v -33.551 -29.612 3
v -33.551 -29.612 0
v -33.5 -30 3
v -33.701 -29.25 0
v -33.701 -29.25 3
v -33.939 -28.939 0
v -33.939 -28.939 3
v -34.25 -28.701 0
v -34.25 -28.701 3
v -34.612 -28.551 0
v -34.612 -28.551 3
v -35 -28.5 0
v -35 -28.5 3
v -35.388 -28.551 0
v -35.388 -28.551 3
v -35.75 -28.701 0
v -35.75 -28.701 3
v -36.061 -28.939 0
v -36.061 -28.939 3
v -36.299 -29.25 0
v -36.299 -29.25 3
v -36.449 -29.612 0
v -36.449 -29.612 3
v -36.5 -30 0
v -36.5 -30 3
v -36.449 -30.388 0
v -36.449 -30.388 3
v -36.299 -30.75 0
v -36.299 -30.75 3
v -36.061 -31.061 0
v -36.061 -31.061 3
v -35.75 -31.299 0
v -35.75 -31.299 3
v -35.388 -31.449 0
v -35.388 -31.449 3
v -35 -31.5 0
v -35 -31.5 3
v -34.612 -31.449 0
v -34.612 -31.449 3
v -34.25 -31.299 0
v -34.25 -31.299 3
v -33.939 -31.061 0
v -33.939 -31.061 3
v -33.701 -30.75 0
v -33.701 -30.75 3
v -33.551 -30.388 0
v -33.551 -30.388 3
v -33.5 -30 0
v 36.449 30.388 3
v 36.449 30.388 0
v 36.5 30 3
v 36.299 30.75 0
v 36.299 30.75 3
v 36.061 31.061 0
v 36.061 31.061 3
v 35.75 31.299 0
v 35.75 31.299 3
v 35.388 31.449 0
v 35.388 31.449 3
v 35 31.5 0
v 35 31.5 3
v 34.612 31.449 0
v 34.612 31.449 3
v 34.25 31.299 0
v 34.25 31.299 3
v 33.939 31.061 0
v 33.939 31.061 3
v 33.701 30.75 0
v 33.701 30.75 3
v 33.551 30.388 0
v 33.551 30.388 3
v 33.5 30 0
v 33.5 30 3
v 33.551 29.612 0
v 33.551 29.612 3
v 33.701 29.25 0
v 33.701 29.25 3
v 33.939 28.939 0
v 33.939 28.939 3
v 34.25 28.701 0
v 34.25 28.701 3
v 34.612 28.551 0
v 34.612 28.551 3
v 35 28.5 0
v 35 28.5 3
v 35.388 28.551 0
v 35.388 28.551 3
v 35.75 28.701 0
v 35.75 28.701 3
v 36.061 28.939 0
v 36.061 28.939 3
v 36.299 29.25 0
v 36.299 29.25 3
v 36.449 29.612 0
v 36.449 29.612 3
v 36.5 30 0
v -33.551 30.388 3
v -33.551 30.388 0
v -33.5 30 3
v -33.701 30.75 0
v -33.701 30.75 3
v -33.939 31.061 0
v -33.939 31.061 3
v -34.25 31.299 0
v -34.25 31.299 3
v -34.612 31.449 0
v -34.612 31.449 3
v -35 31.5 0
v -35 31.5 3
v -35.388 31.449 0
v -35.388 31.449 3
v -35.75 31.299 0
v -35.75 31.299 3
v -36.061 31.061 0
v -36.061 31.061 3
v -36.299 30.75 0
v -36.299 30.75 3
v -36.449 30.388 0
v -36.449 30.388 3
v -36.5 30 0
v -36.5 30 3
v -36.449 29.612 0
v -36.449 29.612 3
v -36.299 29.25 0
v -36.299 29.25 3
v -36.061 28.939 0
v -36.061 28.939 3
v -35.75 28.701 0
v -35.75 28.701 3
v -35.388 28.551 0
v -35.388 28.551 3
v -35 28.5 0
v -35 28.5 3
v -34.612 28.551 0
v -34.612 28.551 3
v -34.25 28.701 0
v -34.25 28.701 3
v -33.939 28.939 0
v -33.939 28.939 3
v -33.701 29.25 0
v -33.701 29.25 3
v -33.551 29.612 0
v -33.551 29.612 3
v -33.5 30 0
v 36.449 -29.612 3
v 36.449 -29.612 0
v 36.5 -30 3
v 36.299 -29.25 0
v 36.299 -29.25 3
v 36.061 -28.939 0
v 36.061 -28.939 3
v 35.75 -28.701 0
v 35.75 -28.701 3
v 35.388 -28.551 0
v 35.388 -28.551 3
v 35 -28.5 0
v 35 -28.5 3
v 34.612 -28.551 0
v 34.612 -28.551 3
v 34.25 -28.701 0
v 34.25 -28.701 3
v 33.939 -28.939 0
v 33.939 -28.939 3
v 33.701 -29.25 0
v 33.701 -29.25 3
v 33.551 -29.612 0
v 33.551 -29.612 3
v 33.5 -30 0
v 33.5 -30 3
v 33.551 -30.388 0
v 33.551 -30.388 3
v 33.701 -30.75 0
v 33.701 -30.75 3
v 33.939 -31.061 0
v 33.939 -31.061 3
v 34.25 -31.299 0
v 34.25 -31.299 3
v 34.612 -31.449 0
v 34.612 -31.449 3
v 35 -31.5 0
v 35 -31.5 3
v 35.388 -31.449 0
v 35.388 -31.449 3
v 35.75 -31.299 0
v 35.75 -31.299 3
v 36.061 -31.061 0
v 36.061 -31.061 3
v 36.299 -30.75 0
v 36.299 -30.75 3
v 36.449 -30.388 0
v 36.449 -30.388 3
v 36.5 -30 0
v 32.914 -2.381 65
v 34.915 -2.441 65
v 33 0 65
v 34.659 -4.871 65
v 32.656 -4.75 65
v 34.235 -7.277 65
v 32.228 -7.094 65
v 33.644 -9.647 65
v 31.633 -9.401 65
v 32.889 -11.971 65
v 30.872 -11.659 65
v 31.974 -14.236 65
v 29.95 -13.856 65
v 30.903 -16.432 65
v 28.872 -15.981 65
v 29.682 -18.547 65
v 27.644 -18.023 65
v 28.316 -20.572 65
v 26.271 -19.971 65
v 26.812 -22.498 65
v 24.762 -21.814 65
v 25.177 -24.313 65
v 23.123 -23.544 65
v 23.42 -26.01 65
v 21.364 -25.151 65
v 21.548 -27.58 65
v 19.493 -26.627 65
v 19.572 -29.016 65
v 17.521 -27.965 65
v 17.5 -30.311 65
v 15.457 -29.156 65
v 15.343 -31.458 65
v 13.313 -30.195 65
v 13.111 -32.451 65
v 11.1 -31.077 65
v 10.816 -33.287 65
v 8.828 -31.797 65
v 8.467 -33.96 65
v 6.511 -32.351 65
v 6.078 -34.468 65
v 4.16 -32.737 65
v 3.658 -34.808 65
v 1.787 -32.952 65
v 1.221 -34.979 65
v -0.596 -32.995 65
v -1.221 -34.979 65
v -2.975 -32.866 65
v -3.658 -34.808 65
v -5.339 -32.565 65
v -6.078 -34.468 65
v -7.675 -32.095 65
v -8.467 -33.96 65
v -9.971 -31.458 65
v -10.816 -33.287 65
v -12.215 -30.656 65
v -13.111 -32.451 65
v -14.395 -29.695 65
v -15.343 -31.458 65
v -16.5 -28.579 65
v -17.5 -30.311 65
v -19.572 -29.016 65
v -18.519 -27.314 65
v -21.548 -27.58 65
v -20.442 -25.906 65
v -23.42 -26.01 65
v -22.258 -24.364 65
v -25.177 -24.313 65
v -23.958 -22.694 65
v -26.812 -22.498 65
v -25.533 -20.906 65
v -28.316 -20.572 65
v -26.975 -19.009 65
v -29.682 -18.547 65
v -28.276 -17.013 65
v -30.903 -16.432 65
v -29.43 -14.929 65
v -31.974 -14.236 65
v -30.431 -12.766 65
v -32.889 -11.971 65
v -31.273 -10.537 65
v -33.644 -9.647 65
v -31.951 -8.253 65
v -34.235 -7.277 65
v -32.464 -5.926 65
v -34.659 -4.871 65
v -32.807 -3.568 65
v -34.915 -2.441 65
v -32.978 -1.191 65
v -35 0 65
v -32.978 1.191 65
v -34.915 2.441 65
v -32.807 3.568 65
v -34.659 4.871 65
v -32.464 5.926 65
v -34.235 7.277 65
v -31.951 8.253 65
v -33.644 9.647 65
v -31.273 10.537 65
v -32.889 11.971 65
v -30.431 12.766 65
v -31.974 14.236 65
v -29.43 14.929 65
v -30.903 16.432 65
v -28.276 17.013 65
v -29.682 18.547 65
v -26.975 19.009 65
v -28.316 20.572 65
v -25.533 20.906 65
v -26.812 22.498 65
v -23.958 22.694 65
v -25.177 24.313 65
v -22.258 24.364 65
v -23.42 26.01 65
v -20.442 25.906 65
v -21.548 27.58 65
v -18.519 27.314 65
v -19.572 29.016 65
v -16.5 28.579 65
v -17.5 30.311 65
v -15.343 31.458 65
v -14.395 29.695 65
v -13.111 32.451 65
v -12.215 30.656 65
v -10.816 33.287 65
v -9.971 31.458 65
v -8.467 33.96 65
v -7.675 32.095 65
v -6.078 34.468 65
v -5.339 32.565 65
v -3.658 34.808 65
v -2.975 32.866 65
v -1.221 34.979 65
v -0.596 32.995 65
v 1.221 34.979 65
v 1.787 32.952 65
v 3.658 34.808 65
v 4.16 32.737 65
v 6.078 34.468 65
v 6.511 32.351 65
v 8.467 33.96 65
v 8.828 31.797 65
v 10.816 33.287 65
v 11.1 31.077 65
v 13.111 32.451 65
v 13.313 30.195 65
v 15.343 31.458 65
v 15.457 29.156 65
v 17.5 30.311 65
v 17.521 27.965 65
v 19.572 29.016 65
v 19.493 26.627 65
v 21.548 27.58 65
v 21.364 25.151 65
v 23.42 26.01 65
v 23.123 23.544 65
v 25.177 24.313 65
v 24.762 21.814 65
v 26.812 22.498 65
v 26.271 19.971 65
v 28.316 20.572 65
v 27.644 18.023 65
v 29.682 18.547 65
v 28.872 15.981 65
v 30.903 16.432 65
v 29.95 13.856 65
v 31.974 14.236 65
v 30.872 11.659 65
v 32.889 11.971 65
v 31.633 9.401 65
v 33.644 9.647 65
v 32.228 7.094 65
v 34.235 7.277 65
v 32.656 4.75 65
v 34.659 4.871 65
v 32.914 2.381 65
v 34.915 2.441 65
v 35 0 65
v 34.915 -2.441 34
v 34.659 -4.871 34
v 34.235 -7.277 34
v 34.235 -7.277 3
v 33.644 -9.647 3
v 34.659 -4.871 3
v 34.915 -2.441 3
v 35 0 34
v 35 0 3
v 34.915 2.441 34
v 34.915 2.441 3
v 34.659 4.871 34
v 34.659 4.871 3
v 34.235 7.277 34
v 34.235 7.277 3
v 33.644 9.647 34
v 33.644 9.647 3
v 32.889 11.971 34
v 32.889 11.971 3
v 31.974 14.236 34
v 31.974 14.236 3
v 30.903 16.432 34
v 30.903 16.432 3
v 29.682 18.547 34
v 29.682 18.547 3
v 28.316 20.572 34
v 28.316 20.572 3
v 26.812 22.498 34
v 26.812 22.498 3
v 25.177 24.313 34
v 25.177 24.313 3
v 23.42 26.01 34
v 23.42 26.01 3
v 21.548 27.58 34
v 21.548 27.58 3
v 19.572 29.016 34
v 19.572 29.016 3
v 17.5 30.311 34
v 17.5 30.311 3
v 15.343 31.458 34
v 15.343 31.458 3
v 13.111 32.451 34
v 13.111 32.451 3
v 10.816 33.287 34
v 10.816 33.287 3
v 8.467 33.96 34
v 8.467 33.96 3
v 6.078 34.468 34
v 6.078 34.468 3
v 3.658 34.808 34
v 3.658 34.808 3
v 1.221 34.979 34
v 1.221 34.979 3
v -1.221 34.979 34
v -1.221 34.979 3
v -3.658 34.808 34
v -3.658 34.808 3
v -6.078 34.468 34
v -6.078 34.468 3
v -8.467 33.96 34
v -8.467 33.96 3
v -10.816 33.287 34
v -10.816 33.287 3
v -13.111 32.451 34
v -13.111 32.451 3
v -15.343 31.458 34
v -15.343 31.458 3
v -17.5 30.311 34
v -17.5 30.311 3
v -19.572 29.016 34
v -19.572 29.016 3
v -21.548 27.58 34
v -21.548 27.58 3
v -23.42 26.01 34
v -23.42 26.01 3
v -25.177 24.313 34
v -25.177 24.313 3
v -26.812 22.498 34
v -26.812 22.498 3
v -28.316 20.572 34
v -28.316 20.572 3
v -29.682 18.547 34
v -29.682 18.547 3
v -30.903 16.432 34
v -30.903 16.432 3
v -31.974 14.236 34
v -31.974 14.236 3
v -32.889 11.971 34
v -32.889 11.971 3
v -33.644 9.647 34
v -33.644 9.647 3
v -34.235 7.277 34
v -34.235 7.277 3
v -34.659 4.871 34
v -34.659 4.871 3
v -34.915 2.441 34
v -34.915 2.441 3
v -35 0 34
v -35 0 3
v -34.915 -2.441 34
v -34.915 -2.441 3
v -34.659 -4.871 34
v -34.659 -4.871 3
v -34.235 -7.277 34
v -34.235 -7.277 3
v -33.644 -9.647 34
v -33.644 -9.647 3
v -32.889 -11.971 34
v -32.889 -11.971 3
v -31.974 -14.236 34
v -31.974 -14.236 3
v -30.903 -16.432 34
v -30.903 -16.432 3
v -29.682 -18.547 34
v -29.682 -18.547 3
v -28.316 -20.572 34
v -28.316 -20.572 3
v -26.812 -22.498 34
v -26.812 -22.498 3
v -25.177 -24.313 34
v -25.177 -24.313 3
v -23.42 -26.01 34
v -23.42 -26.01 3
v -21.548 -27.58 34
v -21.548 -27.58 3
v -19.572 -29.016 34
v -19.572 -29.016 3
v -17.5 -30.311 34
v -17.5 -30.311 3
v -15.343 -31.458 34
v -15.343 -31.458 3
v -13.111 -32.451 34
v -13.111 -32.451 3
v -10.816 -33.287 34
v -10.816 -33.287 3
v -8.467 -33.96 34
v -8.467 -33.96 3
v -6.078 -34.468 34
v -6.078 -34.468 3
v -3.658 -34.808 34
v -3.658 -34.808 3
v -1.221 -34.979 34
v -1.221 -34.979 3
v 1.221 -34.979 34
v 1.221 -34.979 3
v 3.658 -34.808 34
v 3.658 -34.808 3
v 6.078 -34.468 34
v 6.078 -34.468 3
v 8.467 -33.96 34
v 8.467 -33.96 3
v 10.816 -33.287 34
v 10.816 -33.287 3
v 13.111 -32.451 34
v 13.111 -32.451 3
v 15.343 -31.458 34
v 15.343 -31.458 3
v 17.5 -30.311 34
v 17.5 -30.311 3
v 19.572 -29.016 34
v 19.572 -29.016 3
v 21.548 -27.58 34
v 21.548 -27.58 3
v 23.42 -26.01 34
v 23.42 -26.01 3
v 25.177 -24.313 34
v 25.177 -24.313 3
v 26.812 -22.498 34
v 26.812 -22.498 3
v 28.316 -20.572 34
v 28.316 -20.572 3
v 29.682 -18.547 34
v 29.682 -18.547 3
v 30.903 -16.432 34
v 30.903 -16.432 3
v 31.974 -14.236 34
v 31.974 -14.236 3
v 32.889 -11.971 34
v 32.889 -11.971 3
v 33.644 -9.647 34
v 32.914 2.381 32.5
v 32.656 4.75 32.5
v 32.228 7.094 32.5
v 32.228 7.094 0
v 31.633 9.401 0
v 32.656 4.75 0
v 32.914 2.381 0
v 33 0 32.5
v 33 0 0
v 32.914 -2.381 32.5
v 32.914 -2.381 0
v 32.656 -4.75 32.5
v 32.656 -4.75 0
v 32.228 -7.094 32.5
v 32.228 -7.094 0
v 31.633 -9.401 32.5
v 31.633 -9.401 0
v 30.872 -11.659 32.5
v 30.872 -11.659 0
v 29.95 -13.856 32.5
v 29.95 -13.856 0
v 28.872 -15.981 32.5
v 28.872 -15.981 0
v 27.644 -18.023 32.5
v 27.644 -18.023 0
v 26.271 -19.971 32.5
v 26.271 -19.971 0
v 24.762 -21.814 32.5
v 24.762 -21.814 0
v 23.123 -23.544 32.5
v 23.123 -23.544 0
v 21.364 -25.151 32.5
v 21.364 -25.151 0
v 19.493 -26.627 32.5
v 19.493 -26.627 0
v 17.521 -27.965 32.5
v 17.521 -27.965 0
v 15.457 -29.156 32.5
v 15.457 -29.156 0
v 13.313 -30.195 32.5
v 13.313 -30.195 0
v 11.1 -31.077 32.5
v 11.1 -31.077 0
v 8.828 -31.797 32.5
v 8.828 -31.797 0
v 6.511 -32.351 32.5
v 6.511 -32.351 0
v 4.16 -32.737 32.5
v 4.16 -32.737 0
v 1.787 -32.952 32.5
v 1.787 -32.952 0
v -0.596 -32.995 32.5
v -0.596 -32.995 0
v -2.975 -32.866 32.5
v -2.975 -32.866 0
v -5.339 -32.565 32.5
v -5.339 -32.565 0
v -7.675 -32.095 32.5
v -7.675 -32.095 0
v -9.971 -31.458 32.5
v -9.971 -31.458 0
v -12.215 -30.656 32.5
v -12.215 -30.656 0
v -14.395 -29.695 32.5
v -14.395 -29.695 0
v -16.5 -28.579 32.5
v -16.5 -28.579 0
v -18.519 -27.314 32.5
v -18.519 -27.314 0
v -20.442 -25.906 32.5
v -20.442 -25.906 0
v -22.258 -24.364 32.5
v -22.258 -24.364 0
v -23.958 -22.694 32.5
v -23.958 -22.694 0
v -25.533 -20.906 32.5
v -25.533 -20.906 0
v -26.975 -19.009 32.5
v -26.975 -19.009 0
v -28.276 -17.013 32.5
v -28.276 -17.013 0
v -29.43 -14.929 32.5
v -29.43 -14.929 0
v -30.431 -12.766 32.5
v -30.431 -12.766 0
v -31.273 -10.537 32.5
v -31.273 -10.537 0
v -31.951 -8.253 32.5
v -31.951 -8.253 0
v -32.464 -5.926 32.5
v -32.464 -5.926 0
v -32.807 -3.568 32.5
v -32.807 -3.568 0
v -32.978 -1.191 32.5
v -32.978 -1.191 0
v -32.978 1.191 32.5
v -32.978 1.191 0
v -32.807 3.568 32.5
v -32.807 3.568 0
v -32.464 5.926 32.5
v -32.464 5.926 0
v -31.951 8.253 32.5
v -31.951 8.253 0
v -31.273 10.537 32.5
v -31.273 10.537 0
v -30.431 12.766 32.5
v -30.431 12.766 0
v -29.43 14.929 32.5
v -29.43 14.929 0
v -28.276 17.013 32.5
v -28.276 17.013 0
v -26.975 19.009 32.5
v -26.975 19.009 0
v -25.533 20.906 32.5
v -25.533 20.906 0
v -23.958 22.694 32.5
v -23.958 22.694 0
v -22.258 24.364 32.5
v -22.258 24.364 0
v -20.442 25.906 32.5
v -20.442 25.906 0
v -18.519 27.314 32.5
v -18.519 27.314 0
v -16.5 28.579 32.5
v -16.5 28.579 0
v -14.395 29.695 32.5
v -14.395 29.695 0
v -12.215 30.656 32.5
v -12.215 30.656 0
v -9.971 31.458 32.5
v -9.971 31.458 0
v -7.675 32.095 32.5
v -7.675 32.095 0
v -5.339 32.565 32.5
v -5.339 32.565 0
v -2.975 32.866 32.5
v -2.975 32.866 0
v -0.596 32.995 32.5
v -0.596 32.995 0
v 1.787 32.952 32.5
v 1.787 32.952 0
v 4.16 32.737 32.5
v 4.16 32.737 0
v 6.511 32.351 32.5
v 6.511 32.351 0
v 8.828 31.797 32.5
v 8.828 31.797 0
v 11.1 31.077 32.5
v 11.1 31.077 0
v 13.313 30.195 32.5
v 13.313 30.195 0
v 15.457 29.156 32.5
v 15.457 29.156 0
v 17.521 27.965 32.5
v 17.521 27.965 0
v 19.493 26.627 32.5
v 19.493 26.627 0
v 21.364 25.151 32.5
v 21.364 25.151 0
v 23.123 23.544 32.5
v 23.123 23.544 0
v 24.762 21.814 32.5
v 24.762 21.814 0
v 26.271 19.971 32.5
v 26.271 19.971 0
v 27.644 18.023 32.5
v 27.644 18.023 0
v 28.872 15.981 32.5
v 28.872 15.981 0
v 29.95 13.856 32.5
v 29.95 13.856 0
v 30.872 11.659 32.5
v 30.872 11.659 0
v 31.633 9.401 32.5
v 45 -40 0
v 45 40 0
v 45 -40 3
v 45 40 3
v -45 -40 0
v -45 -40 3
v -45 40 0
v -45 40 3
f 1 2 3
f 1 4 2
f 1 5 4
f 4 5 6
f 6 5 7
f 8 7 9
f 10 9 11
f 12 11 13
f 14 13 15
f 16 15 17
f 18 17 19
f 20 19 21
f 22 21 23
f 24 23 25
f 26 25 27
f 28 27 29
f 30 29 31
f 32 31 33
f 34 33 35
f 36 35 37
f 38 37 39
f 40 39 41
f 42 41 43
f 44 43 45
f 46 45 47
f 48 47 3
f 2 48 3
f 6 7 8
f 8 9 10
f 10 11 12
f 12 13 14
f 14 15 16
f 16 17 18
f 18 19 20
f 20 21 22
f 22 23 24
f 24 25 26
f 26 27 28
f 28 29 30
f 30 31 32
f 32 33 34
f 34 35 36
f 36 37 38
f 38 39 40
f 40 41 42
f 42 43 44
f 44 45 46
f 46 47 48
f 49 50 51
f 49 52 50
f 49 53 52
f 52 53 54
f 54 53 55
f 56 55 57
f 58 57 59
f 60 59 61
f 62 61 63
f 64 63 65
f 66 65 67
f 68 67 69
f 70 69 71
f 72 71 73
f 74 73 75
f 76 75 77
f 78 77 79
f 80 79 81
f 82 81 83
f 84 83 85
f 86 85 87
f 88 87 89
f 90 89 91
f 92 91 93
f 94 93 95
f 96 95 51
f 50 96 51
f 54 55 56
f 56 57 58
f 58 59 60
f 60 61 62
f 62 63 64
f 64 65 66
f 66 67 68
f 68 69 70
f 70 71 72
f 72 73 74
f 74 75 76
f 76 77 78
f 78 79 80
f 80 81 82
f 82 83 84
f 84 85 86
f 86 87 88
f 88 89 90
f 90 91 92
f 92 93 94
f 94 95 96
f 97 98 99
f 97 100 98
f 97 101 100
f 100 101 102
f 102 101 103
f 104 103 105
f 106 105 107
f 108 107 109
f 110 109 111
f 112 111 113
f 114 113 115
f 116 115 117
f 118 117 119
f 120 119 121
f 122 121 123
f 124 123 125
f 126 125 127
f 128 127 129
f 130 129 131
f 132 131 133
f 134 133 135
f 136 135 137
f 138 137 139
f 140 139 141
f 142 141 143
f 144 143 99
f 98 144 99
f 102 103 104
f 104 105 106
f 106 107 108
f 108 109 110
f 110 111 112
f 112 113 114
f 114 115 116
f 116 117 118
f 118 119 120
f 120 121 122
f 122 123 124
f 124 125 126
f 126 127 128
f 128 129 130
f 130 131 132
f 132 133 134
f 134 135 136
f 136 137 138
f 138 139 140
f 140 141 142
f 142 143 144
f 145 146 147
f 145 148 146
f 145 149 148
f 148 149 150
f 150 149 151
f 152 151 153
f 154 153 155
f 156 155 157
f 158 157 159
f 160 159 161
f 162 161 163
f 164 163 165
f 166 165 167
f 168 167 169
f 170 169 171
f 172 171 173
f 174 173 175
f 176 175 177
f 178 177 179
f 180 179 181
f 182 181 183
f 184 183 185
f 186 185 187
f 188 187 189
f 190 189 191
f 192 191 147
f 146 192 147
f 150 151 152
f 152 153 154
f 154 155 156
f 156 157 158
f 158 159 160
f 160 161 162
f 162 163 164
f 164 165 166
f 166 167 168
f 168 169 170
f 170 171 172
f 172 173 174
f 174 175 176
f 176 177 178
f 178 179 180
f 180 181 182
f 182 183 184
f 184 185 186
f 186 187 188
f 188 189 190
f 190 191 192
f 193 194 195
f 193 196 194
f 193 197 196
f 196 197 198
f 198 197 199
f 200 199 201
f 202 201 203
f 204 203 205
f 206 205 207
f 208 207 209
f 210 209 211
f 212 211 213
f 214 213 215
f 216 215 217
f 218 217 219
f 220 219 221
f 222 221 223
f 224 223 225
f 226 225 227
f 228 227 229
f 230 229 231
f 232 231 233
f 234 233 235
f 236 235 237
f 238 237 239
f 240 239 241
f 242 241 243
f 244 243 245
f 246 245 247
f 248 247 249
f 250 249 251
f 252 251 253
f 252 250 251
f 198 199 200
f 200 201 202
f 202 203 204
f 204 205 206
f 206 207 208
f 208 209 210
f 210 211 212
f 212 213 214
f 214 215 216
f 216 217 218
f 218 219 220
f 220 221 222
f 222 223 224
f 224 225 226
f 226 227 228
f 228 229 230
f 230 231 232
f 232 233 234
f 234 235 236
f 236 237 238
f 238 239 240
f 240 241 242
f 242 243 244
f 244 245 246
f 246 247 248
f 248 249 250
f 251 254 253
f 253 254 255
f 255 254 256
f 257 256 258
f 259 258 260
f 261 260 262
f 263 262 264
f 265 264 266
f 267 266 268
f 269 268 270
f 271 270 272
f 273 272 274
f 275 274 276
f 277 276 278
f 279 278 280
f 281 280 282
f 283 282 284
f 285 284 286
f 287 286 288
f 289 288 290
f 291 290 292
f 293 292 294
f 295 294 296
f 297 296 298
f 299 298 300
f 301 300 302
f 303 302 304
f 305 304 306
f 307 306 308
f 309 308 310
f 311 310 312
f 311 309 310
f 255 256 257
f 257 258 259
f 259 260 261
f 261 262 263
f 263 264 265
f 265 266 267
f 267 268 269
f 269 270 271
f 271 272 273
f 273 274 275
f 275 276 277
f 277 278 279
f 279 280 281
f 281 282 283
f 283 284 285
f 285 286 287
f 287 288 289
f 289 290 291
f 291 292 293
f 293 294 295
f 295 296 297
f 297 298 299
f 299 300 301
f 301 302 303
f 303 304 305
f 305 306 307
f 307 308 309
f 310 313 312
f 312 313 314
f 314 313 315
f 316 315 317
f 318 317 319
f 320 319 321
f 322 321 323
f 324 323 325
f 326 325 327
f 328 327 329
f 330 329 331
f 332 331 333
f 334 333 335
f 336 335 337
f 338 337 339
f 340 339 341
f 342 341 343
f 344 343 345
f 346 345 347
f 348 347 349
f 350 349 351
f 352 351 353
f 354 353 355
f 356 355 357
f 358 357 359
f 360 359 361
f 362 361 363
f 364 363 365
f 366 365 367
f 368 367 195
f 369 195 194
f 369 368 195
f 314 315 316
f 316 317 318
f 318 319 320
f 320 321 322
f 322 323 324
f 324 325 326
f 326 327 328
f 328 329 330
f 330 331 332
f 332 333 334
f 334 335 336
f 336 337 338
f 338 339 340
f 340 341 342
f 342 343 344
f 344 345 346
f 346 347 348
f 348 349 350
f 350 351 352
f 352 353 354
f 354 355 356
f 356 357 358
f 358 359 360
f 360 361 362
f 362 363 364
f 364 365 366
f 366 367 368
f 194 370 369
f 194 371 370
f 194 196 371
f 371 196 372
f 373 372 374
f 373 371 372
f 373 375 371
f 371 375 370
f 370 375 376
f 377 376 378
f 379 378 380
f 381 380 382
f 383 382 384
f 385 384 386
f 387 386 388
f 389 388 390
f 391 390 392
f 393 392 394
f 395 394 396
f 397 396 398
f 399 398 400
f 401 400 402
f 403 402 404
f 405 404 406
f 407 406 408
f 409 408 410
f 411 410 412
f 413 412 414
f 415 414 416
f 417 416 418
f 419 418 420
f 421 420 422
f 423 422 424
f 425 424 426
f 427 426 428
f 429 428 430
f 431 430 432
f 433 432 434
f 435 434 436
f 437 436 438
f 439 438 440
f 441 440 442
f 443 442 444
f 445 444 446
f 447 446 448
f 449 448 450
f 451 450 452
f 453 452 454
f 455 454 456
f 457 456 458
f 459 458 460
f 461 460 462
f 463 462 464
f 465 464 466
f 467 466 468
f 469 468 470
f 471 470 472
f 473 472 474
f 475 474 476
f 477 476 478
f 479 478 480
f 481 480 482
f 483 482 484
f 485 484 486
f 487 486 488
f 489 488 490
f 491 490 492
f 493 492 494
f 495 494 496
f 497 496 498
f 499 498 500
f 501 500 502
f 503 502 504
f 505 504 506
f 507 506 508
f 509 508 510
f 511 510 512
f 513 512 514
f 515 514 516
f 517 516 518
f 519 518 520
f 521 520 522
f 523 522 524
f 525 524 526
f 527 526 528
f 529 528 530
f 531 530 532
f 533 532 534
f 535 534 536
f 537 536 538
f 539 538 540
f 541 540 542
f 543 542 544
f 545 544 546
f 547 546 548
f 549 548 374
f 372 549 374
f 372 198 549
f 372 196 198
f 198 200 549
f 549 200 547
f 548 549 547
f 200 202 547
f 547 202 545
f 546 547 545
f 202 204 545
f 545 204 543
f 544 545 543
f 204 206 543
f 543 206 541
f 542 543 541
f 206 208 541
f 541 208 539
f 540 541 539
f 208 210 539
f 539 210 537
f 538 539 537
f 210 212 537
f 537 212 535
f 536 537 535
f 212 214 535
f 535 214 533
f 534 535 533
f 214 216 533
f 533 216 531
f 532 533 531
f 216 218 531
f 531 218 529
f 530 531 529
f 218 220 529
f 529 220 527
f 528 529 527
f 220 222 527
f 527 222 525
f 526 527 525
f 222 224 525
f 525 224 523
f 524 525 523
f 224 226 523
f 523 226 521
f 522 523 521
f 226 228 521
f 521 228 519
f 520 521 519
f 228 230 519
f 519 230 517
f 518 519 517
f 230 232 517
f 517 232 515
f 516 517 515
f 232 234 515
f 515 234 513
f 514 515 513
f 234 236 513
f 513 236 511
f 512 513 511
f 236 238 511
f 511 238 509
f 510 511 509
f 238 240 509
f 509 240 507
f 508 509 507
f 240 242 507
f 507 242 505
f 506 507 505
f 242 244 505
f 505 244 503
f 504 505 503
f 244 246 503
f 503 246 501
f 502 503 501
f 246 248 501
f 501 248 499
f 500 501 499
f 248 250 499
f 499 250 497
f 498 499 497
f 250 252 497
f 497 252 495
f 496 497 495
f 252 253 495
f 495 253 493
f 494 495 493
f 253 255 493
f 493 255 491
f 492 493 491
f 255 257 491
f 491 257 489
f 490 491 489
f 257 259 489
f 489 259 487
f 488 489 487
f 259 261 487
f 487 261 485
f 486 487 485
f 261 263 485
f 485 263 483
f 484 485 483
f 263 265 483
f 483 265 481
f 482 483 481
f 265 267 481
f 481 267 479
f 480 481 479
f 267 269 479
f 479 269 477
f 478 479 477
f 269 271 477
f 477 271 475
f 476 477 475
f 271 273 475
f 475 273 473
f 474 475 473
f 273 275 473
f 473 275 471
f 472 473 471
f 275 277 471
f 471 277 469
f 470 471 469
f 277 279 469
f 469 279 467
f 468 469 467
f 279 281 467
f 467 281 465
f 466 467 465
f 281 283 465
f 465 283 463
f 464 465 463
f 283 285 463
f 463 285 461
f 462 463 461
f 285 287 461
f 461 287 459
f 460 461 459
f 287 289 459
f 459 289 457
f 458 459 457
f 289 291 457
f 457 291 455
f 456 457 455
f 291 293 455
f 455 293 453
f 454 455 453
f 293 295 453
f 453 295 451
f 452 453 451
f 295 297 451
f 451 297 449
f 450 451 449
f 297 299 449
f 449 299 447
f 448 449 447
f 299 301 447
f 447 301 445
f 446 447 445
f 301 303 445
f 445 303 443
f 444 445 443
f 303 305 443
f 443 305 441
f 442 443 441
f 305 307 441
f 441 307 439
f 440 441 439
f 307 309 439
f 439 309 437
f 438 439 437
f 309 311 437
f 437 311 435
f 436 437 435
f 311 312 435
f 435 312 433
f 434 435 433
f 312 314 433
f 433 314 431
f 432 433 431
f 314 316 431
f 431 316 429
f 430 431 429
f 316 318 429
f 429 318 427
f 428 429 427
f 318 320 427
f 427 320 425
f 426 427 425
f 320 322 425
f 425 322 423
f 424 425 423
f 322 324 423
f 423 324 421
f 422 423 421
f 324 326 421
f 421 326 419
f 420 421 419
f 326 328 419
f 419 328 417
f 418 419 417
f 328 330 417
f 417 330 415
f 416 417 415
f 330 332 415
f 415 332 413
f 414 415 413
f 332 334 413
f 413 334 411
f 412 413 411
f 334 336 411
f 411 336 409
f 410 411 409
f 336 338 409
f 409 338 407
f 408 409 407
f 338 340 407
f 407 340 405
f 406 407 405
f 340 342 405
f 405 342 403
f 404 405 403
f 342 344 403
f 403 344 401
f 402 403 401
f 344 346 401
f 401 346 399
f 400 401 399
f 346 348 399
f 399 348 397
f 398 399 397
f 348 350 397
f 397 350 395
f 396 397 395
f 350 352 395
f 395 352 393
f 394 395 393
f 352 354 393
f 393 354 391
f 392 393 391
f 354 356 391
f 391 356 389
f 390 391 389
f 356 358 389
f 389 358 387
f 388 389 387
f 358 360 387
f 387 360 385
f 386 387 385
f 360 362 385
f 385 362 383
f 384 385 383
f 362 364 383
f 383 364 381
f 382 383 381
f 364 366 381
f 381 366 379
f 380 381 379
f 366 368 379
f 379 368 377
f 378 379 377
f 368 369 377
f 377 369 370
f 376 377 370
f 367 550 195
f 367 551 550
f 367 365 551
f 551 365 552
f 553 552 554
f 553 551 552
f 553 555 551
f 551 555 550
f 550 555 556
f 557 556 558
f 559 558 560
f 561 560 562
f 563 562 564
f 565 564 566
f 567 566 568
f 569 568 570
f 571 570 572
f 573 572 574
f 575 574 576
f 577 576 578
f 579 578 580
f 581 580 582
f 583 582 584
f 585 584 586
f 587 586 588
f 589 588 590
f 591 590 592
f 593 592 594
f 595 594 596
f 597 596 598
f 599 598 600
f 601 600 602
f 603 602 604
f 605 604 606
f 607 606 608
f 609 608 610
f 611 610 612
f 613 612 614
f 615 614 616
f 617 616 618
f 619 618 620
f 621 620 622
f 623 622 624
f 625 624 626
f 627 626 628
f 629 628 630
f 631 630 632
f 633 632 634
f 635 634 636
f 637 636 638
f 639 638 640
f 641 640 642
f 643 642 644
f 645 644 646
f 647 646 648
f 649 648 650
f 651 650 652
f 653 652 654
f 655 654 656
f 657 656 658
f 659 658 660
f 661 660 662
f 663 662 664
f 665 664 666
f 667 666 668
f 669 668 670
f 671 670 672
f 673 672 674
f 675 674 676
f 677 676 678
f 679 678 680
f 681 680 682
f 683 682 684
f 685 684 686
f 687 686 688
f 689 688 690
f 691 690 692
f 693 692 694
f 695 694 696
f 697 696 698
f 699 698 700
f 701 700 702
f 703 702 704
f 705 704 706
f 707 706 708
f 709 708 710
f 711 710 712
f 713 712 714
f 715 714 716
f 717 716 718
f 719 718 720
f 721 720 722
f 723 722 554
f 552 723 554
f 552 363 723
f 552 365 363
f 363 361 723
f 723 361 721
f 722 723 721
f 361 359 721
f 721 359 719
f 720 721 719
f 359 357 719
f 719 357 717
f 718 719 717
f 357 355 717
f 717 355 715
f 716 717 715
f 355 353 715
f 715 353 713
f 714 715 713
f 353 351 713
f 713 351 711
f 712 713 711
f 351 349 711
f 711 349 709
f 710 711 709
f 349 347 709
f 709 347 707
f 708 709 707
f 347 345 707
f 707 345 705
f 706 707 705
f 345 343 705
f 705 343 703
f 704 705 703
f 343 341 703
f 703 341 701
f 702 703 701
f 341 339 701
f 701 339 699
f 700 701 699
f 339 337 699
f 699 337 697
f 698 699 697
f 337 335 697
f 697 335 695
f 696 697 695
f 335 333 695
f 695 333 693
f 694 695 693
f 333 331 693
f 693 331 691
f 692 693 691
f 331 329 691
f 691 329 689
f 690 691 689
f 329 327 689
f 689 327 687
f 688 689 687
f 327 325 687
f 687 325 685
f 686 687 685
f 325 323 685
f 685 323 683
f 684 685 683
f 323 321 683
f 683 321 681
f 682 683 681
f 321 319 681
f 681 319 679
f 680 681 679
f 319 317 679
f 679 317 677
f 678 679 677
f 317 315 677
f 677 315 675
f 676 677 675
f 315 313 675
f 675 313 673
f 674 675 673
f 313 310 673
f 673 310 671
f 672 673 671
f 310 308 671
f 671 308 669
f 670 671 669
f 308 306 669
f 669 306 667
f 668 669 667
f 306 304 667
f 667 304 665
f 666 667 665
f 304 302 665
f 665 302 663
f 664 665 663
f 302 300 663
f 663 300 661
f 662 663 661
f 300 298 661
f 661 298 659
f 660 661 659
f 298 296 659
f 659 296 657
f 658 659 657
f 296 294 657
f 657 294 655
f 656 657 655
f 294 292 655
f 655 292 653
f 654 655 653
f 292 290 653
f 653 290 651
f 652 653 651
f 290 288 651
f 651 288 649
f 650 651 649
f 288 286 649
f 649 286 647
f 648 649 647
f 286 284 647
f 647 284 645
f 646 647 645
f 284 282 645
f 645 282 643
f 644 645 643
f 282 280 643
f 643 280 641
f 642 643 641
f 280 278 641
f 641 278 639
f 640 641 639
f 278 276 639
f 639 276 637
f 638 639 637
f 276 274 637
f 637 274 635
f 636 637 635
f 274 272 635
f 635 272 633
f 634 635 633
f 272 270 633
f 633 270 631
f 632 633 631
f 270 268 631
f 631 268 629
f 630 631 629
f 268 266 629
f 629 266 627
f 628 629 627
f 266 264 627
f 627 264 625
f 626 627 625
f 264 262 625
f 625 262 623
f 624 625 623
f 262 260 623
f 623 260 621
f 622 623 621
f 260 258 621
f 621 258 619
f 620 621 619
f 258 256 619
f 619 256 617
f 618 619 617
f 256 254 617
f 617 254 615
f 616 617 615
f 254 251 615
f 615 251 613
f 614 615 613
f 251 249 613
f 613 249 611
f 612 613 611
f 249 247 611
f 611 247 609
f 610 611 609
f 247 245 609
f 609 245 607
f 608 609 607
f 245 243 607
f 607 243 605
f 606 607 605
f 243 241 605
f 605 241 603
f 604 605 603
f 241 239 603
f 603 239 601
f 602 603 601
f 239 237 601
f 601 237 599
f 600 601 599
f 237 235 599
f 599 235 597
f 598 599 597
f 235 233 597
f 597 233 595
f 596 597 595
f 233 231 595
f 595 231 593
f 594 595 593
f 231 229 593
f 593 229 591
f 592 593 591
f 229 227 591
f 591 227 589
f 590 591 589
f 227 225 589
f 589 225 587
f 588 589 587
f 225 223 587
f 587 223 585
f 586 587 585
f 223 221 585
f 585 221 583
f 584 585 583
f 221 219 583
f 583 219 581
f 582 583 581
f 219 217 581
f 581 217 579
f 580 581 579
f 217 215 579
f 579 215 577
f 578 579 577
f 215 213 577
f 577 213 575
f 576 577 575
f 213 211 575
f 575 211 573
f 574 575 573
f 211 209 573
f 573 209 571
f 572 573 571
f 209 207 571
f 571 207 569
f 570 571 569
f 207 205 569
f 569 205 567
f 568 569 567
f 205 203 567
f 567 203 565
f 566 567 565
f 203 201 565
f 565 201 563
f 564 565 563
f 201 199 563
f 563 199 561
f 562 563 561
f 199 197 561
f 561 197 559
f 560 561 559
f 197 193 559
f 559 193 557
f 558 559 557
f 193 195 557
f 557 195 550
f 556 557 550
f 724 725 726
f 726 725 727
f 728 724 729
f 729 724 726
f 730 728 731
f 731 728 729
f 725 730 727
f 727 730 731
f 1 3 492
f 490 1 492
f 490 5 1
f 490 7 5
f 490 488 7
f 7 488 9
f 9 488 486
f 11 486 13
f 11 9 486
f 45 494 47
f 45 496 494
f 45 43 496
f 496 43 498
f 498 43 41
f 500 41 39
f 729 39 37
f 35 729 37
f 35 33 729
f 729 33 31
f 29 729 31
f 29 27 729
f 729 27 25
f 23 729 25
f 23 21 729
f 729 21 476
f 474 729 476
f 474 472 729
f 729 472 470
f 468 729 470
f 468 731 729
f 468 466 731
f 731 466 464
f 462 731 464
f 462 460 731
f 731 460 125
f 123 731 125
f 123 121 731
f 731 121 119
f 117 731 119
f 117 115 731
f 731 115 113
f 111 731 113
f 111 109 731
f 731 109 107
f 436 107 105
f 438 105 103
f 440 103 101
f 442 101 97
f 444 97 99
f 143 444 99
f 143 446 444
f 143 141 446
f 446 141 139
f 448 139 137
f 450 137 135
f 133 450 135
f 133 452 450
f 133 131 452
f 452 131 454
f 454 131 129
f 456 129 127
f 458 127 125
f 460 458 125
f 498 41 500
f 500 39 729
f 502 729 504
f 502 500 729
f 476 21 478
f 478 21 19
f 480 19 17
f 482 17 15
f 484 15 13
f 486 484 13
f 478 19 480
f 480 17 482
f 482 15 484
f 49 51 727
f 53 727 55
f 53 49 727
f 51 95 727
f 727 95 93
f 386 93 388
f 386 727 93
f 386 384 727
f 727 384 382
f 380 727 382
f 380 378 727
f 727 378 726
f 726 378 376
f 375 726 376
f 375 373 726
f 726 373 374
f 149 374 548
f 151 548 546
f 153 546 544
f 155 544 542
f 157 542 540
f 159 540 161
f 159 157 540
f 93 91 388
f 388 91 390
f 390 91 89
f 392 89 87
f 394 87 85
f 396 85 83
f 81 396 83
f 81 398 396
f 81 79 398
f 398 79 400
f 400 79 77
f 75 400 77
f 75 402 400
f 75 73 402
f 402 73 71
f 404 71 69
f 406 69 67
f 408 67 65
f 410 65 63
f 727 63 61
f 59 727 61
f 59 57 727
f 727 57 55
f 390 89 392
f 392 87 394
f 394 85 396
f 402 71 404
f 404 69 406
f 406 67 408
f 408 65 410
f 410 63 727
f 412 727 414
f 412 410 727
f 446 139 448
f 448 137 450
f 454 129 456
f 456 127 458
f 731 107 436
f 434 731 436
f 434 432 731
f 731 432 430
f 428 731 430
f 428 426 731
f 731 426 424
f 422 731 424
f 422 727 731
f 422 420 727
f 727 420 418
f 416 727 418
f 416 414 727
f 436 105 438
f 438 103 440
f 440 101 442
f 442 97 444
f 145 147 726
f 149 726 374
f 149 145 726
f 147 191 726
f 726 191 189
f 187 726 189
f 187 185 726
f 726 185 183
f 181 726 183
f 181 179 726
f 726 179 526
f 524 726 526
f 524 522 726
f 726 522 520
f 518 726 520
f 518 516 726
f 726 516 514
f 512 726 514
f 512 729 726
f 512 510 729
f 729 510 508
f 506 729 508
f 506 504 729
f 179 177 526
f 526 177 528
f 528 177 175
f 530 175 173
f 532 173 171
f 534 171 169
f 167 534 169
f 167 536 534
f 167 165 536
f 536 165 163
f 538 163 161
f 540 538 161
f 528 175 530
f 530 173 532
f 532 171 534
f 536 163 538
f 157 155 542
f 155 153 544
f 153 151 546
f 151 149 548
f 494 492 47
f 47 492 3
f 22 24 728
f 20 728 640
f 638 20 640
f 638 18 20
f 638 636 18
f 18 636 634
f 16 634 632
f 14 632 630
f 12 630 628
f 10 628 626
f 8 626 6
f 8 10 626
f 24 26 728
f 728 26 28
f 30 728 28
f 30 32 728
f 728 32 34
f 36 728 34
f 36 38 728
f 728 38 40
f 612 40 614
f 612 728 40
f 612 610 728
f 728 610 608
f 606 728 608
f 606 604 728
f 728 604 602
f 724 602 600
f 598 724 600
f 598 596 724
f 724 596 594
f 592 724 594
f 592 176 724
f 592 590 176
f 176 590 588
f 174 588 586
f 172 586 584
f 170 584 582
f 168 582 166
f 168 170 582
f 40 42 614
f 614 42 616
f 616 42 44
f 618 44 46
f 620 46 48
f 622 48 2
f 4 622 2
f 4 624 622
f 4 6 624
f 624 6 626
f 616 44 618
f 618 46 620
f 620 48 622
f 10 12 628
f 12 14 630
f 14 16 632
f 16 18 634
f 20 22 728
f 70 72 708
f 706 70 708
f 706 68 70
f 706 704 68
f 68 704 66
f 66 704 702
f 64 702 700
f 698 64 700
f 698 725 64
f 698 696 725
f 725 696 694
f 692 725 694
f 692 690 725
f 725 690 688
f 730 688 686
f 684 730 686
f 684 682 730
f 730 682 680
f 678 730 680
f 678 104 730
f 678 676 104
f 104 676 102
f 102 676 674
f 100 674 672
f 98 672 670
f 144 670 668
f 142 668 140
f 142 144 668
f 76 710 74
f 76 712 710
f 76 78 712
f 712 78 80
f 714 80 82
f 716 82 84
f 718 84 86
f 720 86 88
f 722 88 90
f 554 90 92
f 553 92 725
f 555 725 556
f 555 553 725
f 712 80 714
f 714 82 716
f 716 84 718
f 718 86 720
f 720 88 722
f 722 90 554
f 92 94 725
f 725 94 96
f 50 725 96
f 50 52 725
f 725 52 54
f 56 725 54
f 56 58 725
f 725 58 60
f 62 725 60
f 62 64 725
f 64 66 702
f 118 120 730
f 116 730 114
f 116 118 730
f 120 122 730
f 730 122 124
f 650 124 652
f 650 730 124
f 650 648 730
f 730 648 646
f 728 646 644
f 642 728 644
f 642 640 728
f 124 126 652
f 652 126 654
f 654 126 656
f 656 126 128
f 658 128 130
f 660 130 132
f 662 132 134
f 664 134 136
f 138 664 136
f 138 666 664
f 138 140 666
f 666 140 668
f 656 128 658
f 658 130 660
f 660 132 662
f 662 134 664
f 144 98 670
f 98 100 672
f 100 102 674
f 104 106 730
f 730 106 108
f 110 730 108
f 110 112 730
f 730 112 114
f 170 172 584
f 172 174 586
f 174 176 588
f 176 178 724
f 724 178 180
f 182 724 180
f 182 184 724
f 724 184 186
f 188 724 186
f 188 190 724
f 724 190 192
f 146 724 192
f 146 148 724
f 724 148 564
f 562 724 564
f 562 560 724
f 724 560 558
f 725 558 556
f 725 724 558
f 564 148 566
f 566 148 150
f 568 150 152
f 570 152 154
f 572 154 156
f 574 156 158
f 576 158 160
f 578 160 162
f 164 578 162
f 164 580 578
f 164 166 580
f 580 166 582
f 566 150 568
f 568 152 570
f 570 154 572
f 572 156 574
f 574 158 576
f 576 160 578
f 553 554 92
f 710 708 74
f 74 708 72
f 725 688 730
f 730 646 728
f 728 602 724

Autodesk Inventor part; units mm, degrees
ref_plane "YZ Plane" through (0, 0, 0) normal (1, 0, 0) x (0, 1, 0)
ref_plane "XZ Plane" through (0, 0, 0) normal (0, 1, 0) x (-1, 0, 0)
ref_plane "XY Plane" through (0, 0, 0) normal (0, 0, 1) x (1, 0, 0)
sketch "スケッチ1" plane through (0, 0, 0) normal (0, 0, 1) x (1, 0, 0)
  circle A0 centre (0, 0) radius 35
  circle A1 centre (0, 0) radius 33
  line L0 (-45, 40) -> (45, 40)
  line L1 (45, 40) -> (45, -40)
  line L2 (45, -40) -> (-45, -40)
  line L3 (-45, -40) -> (-45, 40)
  line L4 (-45, 40) -> (45, -40) construction
  line L5 (45, 40) -> (-45, -40) construction
  dimension "d0" = 70
  dimension "d1" = 66
  dimension "d2" = 90
  dimension "d3" = 80
extrude "押し出し1" add sketch "スケッチ1" along normal blind 3 contours L0 L1 L2 L3
sketch "スケッチ2" plane through (0, 0, 3) normal (0, 0, 1) x (1, 0, 0)
  circle A0 centre (0, 0) radius 35 projected
  circle A1 centre (0, 0) radius 35
  circle A2 centre (0, 0) radius 33
  dimension "d6" = 66
extrude "押し出し2" add sketch "スケッチ2" along normal blind 3 and the other way blind 3
sketch "スケッチ3" plane through (0, 0, 6) normal (0, 0, 1) x (1, 0, 0)
  circle A0 centre (0, 0) radius 33 projected
  circle A1 centre (0, 0) radius 35 projected
extrude "押し出し3" add sketch "スケッチ3" along normal blind 59
sketch "スケッチ4" plane through (0, 0, 65) normal (0, 0, 1) x (1, 0, 0)
  circle A0 centre (0, 0) radius 33 projected
  circle A1 centre (0, 0) radius 35 projected
sketch "スケッチ5" plane through (0, 0, 0) normal (0, 0, -1) x (-1, 0, 0)
  line L0 (-45, 40) -> (-35, 40)
  line L1 (-35, 40) -> (-35, 30)
  line L2 (-35, 30) -> (-45, 30)
  line L3 (-45, 30) -> (-45, 40)
  line L4 (-45, -40) -> (-35, -40)
  line L5 (-35, -40) -> (-35, -30)
  line L6 (-35, -30) -> (-45, -30)
  line L7 (-45, -30) -> (-45, -40)
  line L8 (45, -40) -> (35, -40)
  line L9 (35, -40) -> (35, -30)
  line L10 (35, -30) -> (45, -30)
  line L11 (45, -30) -> (45, -40)
  line L12 (45, 40) -> (35, 40)
  line L13 (35, 40) -> (35, 30)
  line L14 (35, 30) -> (45, 30)
  line L15 (45, 30) -> (45, 40)
  dimension "d13" = 10
  dimension "d14" = 10
  dimension "d15" = 10
  dimension "d16" = 10
  dimension "d17" = 10
  dimension "d18" = 10
  dimension "d19" = 10
hole "穴1" at (35, 30, 0) at (-35, 30, 0) at (-35, -30, 0) at (35, -30, 0) direction (0, 0, 1) diameter 3 depth 8 tip angle 118
properties part number "知能ロボコン発射口ver2"
